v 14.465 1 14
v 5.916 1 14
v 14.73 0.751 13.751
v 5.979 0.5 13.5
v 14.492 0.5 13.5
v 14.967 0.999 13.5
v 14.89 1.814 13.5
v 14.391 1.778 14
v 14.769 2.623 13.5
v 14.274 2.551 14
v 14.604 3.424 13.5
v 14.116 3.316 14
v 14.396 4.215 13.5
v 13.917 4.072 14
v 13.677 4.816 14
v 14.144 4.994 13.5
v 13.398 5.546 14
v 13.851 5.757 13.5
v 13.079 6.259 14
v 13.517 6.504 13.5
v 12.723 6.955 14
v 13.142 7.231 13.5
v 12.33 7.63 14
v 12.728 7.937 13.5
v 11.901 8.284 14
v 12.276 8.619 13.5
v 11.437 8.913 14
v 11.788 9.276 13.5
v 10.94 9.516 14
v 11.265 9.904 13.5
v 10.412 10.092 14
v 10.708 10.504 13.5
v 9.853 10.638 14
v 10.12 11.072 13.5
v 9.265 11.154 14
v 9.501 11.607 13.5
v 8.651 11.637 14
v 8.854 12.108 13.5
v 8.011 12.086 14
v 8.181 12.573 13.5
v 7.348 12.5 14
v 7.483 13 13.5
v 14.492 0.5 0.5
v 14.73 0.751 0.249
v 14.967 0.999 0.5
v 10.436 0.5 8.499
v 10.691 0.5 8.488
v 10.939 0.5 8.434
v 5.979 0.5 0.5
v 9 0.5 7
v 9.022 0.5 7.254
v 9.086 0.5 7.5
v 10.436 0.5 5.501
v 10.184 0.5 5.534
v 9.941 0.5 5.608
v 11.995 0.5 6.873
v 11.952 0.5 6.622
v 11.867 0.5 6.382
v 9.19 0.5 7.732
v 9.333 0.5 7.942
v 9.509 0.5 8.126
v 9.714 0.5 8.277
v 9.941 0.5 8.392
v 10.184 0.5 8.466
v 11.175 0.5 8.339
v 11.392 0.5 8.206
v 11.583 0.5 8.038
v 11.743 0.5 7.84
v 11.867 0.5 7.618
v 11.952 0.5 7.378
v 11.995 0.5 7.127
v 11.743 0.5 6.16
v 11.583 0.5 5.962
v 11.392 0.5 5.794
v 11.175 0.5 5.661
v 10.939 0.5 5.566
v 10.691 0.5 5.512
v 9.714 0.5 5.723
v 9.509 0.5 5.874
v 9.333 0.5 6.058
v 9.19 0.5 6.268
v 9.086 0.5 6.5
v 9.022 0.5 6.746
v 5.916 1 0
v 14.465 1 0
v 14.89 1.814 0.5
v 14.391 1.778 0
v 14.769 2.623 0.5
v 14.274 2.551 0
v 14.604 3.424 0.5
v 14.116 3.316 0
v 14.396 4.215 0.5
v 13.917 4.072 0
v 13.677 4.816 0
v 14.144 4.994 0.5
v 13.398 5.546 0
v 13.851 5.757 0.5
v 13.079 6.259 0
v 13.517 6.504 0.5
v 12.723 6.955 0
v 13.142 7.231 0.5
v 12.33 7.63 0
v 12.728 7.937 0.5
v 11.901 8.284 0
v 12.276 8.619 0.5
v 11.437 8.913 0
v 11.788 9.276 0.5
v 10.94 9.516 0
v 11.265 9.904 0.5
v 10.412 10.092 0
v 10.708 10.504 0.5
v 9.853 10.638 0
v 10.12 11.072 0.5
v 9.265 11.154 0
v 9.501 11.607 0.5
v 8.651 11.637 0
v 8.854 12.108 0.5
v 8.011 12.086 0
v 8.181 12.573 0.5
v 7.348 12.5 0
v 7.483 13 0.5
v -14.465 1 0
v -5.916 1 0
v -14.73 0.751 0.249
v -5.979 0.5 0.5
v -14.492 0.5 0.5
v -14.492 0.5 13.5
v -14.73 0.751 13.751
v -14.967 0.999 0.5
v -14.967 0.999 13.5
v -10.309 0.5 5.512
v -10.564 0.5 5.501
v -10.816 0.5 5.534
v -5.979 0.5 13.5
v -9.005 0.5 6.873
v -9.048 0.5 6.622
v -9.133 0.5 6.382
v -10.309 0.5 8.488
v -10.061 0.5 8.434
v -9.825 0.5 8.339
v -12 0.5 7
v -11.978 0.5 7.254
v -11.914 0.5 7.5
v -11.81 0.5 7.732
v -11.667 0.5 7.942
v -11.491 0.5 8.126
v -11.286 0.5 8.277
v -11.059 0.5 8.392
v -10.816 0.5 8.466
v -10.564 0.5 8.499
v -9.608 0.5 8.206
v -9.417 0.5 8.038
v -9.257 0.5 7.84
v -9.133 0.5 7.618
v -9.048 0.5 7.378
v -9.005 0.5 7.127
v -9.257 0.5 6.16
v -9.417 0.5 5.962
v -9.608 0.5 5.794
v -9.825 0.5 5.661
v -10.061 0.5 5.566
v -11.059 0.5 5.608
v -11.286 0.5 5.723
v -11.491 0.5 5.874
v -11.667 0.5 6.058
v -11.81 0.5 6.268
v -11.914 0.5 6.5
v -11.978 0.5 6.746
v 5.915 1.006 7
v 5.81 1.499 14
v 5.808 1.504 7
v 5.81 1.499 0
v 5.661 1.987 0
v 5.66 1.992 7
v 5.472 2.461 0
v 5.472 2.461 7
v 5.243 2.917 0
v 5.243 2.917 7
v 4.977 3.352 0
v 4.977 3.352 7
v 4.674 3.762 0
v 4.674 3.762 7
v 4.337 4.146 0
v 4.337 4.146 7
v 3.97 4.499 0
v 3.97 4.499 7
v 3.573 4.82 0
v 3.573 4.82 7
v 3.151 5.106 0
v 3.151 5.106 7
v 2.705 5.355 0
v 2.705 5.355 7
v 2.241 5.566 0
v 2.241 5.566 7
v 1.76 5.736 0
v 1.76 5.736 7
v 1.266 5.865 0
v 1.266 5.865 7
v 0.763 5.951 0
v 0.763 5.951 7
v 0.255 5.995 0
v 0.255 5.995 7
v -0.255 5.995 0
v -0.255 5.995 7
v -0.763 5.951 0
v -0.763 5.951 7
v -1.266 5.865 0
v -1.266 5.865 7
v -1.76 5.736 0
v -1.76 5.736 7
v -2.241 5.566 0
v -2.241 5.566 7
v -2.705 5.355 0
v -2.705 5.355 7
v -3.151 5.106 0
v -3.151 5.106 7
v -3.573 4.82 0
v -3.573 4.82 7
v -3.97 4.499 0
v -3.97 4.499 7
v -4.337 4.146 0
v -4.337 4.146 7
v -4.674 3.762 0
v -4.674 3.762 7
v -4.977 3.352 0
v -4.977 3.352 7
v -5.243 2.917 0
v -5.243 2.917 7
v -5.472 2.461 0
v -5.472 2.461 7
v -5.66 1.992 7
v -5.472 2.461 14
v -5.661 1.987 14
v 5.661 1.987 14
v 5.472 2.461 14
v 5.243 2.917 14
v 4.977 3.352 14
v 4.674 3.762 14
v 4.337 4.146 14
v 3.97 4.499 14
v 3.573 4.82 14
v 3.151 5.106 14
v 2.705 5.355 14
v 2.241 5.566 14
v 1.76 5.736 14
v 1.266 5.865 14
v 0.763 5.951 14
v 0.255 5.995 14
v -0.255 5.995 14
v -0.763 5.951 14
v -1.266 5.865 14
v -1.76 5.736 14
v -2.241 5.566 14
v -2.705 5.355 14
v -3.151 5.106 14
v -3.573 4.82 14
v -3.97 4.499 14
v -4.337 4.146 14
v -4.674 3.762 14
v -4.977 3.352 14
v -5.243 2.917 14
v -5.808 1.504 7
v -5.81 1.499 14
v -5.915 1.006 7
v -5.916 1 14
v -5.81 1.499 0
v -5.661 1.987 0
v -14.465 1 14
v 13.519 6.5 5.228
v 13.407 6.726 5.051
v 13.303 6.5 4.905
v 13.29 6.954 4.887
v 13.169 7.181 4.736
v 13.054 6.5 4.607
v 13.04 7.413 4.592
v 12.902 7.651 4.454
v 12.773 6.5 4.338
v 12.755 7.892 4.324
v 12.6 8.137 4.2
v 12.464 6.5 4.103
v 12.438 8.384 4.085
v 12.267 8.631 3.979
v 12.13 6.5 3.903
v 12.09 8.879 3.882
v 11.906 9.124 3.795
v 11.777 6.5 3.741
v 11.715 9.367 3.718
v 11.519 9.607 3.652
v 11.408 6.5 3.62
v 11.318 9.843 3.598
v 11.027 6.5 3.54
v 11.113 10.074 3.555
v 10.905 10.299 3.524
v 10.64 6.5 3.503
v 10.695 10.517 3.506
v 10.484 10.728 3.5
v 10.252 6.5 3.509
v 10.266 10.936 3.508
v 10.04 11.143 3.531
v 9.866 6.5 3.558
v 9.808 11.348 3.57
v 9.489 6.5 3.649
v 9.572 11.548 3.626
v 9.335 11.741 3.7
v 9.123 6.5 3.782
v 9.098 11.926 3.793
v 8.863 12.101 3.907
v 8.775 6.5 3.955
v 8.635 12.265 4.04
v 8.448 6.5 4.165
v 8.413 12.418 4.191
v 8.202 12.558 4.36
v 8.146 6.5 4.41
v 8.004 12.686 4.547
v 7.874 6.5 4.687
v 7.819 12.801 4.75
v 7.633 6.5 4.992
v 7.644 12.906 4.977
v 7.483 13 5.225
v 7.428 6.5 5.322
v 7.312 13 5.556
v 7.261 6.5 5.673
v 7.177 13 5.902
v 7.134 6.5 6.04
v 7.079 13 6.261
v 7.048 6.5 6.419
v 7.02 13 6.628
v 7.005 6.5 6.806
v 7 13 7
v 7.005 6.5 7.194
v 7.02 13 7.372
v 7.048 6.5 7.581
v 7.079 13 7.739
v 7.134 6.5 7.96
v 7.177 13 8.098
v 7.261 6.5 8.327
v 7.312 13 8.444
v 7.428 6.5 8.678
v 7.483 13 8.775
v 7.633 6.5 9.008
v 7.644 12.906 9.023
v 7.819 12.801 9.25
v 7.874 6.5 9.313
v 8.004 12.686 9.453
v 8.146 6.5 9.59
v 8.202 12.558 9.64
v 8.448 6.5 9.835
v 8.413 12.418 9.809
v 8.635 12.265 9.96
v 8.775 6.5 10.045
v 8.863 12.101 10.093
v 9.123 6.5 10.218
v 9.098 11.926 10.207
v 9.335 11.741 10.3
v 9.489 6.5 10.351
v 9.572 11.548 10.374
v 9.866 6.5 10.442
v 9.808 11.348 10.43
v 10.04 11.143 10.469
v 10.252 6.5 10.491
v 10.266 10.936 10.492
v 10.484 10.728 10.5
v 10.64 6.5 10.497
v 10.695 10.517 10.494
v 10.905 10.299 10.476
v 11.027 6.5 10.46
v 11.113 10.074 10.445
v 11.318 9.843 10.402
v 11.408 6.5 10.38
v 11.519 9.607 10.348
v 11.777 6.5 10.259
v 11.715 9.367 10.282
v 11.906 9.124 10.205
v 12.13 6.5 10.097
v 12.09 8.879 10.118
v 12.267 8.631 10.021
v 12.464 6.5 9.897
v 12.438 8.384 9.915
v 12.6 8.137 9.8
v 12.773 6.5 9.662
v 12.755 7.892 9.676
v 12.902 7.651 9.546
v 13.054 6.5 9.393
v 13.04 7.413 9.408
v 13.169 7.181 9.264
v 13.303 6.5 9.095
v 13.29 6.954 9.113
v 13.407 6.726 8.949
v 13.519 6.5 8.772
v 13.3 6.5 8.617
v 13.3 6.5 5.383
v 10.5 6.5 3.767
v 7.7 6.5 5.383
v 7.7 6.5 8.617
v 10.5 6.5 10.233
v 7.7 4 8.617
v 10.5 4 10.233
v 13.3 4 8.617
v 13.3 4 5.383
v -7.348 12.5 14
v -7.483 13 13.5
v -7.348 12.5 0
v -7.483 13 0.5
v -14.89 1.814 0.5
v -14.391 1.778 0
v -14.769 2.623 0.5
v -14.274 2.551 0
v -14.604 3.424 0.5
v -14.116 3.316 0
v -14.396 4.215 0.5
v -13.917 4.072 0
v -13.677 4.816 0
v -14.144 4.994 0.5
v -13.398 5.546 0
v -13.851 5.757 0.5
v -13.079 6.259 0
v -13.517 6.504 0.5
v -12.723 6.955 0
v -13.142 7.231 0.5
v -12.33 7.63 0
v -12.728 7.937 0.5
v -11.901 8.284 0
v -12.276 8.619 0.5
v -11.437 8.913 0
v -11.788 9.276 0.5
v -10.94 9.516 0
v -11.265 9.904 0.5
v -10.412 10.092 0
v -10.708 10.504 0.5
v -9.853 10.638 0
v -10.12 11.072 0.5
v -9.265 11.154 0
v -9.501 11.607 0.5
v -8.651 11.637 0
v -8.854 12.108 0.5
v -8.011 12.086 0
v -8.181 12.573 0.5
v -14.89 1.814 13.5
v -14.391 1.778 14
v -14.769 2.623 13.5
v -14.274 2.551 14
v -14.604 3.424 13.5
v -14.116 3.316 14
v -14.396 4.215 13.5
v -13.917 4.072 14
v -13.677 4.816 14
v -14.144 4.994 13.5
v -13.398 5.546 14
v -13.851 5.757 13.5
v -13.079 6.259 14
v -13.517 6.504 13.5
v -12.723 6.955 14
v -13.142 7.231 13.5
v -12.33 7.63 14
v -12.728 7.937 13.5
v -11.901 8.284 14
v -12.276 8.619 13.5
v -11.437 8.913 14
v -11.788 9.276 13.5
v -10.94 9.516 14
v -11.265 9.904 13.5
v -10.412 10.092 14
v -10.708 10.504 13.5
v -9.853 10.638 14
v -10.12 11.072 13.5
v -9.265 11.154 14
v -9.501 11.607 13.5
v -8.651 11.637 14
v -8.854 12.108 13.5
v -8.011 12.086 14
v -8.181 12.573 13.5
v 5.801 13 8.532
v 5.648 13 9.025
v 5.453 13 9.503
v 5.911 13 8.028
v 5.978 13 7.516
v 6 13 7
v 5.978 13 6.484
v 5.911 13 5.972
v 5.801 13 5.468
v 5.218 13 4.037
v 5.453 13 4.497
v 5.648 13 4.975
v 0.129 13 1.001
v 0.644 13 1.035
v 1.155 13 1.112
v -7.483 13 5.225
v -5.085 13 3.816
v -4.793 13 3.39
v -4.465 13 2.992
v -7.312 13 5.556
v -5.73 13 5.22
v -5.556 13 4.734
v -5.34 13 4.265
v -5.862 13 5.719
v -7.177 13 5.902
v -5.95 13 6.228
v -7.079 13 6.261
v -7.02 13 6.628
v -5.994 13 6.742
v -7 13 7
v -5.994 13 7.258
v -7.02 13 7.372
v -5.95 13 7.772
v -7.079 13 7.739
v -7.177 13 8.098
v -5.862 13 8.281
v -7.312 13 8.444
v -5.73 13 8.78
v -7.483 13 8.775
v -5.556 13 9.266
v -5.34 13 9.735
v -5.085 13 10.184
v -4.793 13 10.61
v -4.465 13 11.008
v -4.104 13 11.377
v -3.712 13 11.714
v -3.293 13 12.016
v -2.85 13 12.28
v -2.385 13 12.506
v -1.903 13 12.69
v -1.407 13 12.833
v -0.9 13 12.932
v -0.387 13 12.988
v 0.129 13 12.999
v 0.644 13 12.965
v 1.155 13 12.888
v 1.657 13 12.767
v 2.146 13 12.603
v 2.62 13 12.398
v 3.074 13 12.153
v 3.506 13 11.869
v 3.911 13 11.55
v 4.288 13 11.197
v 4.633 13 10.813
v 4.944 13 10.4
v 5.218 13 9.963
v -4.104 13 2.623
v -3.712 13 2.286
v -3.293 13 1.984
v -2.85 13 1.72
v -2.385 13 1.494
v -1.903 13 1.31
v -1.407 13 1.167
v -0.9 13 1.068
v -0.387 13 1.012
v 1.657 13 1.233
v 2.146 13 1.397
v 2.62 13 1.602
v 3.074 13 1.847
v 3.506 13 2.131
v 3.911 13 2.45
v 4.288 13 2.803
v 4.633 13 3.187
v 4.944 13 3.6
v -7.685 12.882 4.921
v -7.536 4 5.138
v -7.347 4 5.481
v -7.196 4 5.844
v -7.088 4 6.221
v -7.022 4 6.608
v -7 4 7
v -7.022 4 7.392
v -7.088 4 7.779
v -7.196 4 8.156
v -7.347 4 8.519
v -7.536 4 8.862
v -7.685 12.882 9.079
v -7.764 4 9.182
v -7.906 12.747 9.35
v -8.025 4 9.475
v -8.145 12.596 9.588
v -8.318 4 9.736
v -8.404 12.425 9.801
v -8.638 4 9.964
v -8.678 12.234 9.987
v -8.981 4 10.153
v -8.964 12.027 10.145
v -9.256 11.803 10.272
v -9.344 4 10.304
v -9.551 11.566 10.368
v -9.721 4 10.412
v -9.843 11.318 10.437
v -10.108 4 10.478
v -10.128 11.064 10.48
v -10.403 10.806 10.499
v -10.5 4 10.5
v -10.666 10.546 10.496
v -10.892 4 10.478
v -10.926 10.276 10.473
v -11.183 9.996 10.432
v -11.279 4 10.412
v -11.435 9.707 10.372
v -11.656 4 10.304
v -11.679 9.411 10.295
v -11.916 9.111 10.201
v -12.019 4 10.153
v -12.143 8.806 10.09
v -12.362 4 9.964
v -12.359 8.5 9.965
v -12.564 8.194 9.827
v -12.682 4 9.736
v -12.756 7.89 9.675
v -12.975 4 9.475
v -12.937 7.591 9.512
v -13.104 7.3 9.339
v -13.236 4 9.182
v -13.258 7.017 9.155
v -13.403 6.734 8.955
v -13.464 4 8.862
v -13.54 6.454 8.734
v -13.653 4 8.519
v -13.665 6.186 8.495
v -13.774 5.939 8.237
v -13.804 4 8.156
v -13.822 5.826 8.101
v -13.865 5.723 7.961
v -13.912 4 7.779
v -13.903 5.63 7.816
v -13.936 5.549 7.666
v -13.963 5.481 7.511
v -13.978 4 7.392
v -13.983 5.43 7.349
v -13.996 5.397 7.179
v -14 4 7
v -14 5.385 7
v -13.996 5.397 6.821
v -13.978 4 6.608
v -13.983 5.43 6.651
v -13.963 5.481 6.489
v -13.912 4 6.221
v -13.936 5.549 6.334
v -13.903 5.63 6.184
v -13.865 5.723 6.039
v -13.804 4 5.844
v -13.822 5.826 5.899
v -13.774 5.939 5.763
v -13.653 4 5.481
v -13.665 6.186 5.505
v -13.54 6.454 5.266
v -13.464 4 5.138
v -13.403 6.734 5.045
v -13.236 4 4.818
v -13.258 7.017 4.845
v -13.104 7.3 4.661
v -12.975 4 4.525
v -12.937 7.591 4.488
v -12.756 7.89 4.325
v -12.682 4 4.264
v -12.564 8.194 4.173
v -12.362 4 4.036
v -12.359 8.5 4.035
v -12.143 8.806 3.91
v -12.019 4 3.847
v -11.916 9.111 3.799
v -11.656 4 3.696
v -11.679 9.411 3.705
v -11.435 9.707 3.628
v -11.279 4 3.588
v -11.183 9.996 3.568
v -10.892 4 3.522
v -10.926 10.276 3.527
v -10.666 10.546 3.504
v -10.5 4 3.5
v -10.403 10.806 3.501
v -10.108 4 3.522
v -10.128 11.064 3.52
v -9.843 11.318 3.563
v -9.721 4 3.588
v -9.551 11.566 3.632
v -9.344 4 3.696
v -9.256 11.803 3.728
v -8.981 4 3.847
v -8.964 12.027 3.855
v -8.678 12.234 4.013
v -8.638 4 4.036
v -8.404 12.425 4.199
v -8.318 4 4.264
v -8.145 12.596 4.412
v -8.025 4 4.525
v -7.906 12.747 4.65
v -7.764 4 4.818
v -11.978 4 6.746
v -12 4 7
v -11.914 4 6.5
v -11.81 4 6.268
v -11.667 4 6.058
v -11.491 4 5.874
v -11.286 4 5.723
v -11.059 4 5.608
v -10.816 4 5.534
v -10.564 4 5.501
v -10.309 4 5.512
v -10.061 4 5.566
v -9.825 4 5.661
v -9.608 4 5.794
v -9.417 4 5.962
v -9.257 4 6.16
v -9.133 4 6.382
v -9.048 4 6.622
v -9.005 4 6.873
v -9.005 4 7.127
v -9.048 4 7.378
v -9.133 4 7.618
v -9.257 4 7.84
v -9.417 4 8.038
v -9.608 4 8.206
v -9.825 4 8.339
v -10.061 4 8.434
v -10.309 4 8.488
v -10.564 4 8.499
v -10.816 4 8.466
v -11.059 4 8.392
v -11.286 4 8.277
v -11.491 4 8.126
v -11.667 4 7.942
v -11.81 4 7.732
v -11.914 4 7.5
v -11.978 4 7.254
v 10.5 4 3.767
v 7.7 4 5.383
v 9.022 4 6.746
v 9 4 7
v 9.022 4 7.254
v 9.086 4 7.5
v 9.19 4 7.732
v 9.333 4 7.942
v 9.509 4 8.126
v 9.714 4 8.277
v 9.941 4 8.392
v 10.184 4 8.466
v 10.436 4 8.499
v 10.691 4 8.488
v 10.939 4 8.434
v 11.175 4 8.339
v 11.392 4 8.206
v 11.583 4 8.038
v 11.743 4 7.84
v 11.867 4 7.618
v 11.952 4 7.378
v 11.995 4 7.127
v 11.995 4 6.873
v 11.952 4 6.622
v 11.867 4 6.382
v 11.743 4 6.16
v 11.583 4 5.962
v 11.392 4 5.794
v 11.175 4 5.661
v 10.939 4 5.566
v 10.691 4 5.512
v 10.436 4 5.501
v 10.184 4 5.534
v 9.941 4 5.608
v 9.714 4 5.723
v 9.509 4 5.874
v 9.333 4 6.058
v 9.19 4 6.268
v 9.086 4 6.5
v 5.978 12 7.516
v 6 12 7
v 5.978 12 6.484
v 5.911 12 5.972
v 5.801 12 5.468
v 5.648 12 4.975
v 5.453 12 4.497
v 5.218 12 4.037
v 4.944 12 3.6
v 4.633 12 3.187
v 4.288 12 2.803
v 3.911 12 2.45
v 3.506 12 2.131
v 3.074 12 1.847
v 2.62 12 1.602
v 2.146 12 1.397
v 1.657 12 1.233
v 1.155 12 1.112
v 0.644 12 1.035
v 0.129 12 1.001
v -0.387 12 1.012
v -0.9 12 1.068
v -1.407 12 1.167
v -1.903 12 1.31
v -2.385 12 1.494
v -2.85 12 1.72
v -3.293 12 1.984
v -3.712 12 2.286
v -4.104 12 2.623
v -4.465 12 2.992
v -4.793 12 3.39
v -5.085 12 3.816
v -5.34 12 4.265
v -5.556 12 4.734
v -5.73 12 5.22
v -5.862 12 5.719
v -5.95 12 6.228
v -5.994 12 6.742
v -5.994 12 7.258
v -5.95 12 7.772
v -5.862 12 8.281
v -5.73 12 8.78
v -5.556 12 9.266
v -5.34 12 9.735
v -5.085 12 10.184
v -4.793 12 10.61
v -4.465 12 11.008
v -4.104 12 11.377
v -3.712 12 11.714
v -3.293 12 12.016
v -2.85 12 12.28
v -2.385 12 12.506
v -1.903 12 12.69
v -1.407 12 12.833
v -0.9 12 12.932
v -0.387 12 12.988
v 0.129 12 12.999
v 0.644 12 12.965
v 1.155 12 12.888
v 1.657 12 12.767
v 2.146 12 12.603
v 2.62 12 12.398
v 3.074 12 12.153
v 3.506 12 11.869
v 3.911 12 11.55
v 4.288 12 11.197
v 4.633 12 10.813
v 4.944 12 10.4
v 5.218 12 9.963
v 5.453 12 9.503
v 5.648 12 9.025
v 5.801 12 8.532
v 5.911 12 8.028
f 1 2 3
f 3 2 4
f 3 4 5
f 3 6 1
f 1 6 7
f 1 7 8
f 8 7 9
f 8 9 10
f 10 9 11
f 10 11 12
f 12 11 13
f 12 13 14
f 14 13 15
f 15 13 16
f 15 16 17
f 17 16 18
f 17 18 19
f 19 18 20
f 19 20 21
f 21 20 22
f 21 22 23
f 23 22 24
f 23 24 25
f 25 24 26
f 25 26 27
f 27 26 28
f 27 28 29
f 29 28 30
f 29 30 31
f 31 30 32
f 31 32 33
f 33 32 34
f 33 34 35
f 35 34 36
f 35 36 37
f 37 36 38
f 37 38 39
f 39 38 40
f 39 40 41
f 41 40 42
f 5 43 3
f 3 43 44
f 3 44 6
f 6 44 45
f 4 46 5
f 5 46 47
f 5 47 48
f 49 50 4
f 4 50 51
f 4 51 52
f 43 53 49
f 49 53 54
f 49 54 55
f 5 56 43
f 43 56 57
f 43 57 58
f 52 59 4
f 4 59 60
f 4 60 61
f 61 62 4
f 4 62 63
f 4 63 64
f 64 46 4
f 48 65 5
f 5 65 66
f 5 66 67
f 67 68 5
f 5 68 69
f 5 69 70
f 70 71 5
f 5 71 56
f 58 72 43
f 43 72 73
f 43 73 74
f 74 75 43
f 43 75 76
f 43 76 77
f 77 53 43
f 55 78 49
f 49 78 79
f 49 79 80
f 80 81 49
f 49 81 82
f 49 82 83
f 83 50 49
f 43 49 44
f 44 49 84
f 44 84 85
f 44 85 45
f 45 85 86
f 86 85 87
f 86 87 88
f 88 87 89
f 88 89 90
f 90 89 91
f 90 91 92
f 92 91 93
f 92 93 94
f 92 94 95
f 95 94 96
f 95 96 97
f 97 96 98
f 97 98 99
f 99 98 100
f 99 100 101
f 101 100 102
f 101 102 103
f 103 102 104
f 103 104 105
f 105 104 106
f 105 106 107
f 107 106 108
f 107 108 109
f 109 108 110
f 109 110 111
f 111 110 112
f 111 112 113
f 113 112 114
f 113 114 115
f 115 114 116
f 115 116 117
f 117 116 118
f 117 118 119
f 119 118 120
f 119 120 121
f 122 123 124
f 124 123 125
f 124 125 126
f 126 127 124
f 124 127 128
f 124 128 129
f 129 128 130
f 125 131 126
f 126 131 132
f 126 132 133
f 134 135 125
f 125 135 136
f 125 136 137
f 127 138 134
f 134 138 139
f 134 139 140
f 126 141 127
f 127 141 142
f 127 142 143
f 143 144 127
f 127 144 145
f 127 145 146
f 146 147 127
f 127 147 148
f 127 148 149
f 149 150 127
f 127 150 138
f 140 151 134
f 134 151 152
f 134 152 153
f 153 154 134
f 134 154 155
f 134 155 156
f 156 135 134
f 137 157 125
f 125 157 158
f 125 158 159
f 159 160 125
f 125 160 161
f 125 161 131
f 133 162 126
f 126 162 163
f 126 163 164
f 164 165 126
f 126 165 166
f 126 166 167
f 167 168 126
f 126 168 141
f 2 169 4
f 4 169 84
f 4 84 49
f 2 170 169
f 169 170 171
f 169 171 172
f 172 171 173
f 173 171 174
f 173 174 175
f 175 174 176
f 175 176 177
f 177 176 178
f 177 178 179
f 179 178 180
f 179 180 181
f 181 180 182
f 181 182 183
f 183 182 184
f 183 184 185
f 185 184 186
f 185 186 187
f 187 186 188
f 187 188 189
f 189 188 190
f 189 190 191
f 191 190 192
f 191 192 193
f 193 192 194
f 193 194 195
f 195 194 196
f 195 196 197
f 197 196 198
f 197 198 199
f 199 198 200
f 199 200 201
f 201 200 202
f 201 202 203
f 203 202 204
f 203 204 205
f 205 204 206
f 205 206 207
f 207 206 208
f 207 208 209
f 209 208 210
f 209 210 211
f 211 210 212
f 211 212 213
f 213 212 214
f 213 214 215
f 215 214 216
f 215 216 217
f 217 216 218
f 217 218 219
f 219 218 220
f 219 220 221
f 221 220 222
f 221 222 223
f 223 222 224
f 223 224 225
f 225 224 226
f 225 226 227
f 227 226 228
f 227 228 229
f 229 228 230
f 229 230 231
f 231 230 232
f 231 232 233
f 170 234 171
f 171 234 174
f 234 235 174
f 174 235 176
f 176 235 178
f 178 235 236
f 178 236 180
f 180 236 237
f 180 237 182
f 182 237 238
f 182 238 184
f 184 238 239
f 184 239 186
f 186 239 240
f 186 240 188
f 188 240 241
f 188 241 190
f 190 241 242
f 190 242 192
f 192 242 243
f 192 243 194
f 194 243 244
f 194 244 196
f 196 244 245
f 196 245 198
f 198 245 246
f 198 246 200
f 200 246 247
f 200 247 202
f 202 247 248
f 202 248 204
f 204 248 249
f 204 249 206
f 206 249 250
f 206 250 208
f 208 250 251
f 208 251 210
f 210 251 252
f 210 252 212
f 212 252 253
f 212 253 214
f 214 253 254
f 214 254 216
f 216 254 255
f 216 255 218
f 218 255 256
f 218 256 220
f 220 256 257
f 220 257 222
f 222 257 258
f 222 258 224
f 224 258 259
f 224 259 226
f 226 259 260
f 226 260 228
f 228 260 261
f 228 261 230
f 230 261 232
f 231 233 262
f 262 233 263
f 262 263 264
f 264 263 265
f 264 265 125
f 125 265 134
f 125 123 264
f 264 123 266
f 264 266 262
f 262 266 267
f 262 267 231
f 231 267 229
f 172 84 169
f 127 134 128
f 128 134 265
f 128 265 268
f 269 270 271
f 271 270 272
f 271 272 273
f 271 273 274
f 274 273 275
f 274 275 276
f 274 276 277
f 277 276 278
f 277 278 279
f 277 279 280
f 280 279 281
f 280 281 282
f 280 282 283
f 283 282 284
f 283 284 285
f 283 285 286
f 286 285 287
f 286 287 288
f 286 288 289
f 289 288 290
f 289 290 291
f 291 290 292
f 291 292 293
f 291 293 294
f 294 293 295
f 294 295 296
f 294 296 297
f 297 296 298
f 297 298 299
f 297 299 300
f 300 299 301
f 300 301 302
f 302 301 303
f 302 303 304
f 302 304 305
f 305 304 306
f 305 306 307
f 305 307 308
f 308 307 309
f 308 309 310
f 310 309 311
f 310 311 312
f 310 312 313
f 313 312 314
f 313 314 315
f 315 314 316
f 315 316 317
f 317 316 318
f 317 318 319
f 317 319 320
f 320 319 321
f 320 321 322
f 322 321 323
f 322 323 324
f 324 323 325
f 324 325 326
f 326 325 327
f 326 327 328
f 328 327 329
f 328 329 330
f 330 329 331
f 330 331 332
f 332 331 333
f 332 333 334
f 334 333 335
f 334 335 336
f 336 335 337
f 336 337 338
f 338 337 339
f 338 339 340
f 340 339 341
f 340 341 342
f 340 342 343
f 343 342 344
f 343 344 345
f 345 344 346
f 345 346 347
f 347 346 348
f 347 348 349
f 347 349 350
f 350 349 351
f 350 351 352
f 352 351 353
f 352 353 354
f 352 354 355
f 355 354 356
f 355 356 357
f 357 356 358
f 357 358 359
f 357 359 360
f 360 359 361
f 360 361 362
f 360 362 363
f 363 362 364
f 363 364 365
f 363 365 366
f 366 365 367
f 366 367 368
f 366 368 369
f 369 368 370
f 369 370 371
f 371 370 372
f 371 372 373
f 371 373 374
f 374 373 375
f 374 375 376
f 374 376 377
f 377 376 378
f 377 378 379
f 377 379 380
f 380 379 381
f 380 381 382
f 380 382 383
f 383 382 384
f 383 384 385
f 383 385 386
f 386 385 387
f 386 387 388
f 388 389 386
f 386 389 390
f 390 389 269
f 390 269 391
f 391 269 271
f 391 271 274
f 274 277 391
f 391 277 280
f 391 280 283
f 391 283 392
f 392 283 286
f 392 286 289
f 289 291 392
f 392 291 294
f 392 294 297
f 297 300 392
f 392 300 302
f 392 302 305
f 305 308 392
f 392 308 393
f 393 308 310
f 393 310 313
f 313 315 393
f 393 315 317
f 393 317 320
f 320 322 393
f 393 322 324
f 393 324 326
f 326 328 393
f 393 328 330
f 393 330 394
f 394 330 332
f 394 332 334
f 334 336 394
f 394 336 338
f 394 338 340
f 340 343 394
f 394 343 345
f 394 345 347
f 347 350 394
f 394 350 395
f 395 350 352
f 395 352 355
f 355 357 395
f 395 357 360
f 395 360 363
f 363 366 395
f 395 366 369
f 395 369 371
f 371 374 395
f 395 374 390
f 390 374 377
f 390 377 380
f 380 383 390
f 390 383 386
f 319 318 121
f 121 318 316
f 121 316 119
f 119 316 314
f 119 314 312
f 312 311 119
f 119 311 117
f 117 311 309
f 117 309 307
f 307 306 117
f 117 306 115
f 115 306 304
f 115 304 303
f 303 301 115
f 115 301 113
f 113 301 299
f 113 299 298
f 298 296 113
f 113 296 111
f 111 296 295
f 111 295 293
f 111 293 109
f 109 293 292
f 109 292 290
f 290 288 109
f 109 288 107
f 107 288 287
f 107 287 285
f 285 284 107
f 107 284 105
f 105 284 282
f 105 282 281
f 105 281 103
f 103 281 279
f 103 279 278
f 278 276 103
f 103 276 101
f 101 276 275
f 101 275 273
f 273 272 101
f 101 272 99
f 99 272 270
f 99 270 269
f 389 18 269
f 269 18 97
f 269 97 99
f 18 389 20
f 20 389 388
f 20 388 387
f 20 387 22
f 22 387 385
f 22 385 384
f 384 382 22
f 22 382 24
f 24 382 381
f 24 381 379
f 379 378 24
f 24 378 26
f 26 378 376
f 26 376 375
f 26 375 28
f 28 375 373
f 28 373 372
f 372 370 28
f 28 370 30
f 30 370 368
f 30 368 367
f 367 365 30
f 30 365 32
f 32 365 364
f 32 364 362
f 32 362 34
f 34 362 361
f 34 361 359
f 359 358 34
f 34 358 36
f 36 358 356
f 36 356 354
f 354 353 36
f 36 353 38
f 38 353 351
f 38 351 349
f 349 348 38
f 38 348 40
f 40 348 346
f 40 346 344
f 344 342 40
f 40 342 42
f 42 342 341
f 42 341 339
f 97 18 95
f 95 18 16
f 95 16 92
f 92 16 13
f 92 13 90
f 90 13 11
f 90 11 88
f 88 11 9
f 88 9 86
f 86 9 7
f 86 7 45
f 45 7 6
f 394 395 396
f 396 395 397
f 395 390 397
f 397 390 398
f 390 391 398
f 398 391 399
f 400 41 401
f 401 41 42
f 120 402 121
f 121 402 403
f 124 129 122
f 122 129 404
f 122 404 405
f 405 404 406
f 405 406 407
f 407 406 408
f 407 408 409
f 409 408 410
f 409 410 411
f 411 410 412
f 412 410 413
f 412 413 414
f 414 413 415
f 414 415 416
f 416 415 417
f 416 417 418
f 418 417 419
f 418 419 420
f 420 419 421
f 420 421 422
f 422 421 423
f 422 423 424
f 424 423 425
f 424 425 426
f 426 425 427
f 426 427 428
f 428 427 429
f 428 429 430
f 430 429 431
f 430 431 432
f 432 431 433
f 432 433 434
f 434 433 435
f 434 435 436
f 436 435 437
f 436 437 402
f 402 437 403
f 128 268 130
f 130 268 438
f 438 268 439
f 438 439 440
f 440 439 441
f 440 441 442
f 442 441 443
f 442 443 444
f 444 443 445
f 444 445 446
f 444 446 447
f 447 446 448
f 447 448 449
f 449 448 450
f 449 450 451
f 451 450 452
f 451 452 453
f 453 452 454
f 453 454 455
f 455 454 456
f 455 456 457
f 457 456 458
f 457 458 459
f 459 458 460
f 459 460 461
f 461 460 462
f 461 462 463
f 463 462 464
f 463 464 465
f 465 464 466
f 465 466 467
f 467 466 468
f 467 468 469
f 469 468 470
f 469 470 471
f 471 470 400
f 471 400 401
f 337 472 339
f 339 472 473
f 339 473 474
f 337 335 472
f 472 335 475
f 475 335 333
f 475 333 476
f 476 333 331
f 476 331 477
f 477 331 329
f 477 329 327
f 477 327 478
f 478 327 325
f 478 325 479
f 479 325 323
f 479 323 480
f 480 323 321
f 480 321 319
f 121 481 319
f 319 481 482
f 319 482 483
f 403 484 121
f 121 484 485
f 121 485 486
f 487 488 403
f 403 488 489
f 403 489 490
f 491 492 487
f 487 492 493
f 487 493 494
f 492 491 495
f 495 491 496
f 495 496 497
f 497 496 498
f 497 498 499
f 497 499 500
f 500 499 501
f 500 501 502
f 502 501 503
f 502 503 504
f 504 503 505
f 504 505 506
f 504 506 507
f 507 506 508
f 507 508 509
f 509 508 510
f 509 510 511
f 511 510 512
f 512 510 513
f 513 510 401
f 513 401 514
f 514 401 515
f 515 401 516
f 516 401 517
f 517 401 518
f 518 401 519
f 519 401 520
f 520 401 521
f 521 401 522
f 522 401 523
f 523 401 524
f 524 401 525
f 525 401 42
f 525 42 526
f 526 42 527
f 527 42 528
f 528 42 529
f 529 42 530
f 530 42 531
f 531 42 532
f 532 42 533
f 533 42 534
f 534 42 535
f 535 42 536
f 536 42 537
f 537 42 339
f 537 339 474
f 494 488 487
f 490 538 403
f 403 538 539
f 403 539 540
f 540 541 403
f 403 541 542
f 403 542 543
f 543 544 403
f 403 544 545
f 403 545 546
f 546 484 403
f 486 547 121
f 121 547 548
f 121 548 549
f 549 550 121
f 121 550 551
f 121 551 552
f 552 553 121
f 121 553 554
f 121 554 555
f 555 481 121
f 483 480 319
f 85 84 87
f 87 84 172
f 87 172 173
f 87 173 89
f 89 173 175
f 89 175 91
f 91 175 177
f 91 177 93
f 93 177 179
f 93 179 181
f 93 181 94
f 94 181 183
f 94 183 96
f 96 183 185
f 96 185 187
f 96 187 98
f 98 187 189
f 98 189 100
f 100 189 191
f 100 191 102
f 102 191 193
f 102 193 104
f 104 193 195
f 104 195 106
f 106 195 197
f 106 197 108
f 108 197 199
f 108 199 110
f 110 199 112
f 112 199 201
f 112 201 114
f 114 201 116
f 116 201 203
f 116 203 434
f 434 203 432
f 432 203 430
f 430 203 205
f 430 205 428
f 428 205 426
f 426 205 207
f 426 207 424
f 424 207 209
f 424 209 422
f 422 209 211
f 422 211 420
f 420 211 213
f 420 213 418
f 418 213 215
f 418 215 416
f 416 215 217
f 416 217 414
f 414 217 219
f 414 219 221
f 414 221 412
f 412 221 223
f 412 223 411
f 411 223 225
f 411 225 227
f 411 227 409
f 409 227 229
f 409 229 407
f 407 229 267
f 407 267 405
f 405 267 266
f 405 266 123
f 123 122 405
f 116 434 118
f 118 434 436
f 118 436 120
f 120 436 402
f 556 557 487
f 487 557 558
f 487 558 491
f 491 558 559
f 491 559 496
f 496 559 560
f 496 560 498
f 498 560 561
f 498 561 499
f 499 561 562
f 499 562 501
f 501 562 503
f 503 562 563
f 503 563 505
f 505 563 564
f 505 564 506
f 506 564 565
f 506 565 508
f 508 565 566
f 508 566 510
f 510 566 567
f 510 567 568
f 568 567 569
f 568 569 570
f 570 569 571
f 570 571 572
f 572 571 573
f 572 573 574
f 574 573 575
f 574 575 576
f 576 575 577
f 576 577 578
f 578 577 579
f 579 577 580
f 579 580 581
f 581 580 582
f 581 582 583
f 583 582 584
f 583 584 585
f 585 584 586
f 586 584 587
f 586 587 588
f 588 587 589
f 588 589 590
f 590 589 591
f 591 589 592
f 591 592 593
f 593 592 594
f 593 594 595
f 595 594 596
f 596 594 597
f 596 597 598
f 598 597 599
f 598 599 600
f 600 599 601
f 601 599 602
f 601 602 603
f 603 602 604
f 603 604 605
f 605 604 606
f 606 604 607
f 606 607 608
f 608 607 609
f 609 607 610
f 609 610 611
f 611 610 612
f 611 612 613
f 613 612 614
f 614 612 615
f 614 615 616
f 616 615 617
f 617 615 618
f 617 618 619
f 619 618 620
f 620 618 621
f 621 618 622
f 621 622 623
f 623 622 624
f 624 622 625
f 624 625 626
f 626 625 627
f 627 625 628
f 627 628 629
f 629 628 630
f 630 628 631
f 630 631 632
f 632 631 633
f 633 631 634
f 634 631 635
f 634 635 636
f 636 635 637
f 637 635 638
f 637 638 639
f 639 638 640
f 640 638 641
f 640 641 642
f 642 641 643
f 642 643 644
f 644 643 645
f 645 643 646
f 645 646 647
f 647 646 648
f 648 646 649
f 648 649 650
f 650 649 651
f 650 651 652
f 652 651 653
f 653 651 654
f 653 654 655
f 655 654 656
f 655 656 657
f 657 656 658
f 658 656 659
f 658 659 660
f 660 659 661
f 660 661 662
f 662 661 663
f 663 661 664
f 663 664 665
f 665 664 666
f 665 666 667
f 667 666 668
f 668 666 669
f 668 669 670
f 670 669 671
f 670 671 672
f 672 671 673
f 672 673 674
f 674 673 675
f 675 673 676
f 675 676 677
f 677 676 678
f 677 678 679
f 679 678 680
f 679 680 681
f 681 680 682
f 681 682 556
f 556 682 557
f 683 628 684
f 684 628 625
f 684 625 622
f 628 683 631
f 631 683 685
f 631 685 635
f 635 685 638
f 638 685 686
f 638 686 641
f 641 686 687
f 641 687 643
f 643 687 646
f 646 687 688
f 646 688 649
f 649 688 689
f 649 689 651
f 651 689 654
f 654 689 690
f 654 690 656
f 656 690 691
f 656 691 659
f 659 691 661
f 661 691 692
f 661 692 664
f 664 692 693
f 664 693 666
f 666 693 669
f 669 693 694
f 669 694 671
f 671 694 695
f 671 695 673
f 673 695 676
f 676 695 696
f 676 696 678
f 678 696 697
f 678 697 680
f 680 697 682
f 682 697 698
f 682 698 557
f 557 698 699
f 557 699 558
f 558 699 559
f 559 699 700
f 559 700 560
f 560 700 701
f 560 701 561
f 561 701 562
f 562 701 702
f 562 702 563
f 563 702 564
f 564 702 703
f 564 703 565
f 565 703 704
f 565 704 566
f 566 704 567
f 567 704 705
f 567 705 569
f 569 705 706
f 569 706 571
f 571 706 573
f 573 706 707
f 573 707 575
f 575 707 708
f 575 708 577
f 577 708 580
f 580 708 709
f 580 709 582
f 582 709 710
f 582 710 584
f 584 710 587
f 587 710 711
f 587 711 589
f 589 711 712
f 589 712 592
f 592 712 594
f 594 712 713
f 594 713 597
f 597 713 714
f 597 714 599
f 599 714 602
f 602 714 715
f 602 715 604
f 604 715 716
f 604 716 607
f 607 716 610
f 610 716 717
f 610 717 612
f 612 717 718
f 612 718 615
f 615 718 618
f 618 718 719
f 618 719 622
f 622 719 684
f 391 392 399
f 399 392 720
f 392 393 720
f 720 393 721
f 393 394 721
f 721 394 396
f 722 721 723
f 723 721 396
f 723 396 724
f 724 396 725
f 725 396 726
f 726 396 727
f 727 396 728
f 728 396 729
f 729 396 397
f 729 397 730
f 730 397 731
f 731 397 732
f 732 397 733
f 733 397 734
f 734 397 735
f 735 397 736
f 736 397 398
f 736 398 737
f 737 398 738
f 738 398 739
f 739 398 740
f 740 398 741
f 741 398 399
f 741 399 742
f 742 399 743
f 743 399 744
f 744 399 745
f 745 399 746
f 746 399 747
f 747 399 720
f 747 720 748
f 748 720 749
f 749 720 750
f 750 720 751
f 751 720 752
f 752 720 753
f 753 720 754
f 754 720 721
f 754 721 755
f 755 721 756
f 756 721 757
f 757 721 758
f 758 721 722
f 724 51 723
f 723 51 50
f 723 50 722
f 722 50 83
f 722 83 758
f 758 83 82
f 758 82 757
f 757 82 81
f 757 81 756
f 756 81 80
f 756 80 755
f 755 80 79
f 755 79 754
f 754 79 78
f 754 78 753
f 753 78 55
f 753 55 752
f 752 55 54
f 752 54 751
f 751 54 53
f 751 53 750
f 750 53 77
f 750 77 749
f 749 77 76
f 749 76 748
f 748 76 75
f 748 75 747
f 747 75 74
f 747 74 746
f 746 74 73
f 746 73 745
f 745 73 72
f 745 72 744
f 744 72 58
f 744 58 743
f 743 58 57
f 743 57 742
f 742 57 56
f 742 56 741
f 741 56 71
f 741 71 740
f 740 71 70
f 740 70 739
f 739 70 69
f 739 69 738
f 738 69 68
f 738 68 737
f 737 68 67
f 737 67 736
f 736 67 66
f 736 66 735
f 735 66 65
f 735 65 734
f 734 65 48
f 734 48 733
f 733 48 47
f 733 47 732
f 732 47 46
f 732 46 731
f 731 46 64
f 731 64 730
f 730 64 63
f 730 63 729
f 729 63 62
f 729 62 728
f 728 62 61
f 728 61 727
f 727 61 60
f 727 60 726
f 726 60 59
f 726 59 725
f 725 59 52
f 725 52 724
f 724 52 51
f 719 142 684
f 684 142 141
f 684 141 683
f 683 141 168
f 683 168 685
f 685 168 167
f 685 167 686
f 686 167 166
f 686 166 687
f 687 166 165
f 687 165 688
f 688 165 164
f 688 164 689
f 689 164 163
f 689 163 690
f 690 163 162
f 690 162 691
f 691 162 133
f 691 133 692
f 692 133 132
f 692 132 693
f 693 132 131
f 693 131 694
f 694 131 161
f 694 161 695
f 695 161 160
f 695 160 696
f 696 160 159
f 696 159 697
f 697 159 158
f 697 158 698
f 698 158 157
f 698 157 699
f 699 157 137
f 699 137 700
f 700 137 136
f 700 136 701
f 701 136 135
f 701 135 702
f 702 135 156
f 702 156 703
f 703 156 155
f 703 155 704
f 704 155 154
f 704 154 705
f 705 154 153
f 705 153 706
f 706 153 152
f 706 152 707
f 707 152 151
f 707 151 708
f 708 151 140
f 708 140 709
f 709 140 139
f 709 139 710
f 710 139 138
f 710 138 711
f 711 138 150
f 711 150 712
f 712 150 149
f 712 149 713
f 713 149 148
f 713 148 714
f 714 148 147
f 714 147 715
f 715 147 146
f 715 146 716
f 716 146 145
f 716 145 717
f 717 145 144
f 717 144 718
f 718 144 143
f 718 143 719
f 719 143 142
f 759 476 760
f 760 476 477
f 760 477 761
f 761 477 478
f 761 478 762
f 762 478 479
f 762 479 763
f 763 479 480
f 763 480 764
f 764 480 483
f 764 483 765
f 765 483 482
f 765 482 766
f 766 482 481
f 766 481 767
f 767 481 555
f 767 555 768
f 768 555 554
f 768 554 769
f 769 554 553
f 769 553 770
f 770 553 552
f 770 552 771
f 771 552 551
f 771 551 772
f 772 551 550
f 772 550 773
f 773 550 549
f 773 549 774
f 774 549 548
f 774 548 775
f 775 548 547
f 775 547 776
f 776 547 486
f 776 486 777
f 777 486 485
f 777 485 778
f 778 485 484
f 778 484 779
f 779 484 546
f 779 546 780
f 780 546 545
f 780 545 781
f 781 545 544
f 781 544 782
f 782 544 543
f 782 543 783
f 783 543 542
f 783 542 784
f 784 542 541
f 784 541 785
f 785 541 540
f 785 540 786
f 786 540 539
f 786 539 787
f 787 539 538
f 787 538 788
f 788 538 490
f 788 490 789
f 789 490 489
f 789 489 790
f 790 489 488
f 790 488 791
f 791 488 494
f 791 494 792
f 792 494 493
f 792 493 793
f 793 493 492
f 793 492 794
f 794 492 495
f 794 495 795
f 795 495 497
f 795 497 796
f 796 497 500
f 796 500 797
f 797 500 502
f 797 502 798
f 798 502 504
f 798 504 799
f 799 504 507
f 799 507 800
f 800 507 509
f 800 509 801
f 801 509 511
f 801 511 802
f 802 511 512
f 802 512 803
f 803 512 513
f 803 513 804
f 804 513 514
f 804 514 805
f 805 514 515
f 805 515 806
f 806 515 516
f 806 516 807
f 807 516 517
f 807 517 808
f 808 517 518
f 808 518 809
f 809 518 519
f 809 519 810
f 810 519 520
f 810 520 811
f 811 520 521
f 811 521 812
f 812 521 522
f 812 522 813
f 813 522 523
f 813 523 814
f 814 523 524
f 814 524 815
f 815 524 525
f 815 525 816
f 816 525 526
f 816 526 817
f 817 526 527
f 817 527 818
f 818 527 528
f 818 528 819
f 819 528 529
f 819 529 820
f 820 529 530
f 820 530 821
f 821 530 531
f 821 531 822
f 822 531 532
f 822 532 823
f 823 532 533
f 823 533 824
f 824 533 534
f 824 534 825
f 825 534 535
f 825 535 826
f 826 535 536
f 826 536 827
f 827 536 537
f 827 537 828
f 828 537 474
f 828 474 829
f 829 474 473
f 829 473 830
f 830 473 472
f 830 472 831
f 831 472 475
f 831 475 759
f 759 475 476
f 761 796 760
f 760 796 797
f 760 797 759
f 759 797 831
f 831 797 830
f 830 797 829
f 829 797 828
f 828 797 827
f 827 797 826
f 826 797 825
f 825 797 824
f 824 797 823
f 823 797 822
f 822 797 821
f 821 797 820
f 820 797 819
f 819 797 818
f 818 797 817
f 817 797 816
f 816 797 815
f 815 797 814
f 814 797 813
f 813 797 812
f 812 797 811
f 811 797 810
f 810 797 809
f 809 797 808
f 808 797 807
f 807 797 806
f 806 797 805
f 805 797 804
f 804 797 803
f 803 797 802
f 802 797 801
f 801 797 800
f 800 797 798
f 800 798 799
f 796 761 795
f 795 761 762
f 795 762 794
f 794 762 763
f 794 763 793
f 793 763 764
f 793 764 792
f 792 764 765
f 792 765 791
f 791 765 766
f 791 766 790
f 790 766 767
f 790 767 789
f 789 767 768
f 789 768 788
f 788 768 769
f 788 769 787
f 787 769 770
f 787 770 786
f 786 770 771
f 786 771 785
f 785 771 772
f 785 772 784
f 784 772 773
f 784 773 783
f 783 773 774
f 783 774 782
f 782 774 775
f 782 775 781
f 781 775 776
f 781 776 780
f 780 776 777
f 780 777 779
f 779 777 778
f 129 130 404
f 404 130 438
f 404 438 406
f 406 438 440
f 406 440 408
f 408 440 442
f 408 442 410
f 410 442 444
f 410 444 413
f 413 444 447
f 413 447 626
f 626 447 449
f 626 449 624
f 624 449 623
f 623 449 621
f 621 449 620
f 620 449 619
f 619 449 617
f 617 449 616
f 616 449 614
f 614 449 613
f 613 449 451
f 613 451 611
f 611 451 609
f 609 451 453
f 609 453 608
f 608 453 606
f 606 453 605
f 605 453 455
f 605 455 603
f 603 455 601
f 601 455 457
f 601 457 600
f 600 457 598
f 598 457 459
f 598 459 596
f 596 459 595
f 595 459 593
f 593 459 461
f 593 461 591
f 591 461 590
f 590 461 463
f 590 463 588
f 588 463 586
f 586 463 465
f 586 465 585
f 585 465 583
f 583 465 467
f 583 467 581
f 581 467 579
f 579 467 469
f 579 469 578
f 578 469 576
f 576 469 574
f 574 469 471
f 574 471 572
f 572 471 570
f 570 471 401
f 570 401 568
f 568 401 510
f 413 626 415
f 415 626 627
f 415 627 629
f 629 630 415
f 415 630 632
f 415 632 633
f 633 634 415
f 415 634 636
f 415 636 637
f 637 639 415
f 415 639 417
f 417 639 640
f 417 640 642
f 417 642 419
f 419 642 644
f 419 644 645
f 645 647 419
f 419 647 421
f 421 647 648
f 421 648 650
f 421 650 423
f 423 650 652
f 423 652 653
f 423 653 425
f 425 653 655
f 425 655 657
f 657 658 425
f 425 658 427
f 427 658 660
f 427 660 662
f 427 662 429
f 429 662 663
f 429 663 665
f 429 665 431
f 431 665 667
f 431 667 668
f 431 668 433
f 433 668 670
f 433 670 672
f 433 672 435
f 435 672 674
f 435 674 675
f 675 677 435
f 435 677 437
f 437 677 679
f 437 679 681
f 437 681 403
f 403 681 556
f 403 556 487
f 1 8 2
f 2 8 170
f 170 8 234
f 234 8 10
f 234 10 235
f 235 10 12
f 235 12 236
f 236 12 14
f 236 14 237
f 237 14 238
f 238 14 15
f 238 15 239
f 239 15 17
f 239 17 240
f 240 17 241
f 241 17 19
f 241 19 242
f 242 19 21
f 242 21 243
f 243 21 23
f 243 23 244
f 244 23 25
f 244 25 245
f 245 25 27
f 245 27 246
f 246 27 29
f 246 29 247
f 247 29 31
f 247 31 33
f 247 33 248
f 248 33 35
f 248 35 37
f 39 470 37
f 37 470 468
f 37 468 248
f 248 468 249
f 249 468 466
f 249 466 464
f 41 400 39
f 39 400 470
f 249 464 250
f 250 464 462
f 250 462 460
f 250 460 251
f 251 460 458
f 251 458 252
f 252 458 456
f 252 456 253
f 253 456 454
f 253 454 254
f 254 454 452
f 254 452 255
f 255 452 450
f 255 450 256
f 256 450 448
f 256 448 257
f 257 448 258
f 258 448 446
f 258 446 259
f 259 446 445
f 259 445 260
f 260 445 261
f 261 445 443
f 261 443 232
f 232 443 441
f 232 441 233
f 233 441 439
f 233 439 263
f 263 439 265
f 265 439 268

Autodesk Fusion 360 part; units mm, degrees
sketch "スケッチ2" plane through (0, 0, 0) normal (0, 0, 1) x (1, 0, 0)
  line L0 (0, 0.5) -> (0, -0.5)
  arc A0 (-7.4833, 13) -> (-14.9917, 0.4998) centre (0, 0) ccw
  line L1 (-14.9917, 0.4998) -> (-5.9791, 0.4998)
  line L2 (5.9791, 0.4998) -> (14.9917, 0.4998)
  arc A1 (5.9791, 0.4998) -> (-5.9791, 0.4998) centre (0, 0) ccw
  arc A2 (14.9917, 0.4998) -> (7.4833, 13) centre (0, 0) ccw
  line L3 (0, 13) -> (7.4833, 13)
  line L4 (-7.4833, 13) -> (0, 13)
extrude "押し出し1" add sketch "スケッチ2" along normal blind 14
sketch "スケッチ4" plane through (0, 13, 0) normal (0, 1, 0) x (-1, 0, 0)
  line L0 (-7.4833, 0) -> (7.4833, 0)
  line L1 (7.4833, 0) -> (7.4833, 14)
  line L2 (7.4833, 14) -> (-7.4833, 14)
  line L3 (-7.4833, 14) -> (-7.4833, 0)
  circle A0 centre (0, 7) radius 6
  dimension "d7" = 12
extrude "押し出し2" cut sketch "スケッチ4" against normal blind 1 contours A0
sketch "スケッチ5" plane through (0, 0, 0) normal (0, 1, 0) x (1, 0, 0)
  line L0 (0, 1) -> (0, -15)
  line L1 (15, -7) -> (10.5, -7)
  circle A0 centre (10.5, -7) radius 1.5
  circle A1 centre (-10.5, -7) radius 1.5
  dimension "d10" = 4.5
extrude "押し出し3" cut sketch "スケッチ5" along normal blind 13
sketch "スケッチ6" plane through (0, 13, 0) normal (0, 1, 0) x (-1, 0, 0)
  circle A0 centre (0, 7) radius 6
  line L0 (-7.4833, 0) -> (7.4833, 0)
  line L1 (7.4833, 0) -> (7.4833, 14)
  line L2 (7.4833, 14) -> (-7.4833, 14)
  line L3 (-7.4833, 14) -> (-7.4833, 0)
  circle A1 centre (10.5, 7) radius 3.5
  line L4 (-7.7, 8.6166) -> (-10.5, 10.2332)
  line L5 (-10.5, 10.2332) -> (-13.3, 8.6166)
  line L6 (-13.3, 8.6166) -> (-13.3, 5.3834)
  line L7 (-13.3, 5.3834) -> (-10.5, 3.7668)
  line L8 (-10.5, 3.7668) -> (-7.7, 5.3834)
  line L9 (-7.7, 5.3834) -> (-7.7, 8.6166)
  point P0 (10.5, 7)
  point P1 (-10.5, 7)
  point P2 (-10.5, 7)
extrude "押し出し4" cut sketch "スケッチ6" against normal blind 9 contours L1 A1 | L1 A1 | L4 L5 L6 L7 L8 L9
sketch "スケッチ7" plane through (13.3, 0, 0) normal (-1, 0, 0) x (0, -1, 0)
  line L0 (-6.9361, 8.6166) -> (-6.9361, 5.3834)
  line L1 (-6.9361, 5.3834) -> (-4, 5.3834)
  line L2 (-4, 5.3834) -> (-4, 8.6166)
  line L3 (-4, 8.6166) -> (-6.9361, 8.6166)
chamfer "面取り1" distance 0.5 angle 45 8 edges at (0, 13, 0) (-12.8586, 7.7237, 0) (-14.9917, 0.4998, 7) (-12.8586, 7.7237, 14) (0, 13, 14) (12.8586, 7.7237, 14) (12.8586, 7.7237, 0) (14.9917, 0.4998, 7)
sketch "スケッチ8" plane through (0, 13, 0) normal (0, 1, 0) x (-1, 0, 0)
  circle A0 centre (0, 7) radius 6
  line L0 (7.4833, 13.5) -> (-7.4833, 13.5)
  line L1 (-7.4833, 13.5) -> (-7.4833, 0.5)
  line L2 (-7.4833, 0.5) -> (7.4833, 0.5)
  line L3 (7.4833, 0.5) -> (7.4833, 5.2253)
  arc A1 (7.4833, 8.7747) -> (7.4833, 5.2253) centre (10.5, 7) ccw
  line L4 (7.4833, 8.7747) -> (7.4833, 13.5)
  circle A2 centre (-10.5, 7) radius 3.5
  point P0 (-10.5, 7)
  dimension "d18" = 7
extrude "押し出し5" cut sketch "スケッチ8" against normal blind 6.5 contours L1 A2 | L1 A2
chamfer "面取り2" distance 0.5 angle 45 4 edges at (-10.2353, 0.4998, 14) (-10.2353, 0.4998, 0) (10.2353, 0.4998, 0) (10.2353, 0.4998, 14)
sketch "スケッチ9" plane through (0, 0, 0) normal (0, 1, 0) x (1, 0, 0)
  line L0 (20, -7) -> (-20, -7)
